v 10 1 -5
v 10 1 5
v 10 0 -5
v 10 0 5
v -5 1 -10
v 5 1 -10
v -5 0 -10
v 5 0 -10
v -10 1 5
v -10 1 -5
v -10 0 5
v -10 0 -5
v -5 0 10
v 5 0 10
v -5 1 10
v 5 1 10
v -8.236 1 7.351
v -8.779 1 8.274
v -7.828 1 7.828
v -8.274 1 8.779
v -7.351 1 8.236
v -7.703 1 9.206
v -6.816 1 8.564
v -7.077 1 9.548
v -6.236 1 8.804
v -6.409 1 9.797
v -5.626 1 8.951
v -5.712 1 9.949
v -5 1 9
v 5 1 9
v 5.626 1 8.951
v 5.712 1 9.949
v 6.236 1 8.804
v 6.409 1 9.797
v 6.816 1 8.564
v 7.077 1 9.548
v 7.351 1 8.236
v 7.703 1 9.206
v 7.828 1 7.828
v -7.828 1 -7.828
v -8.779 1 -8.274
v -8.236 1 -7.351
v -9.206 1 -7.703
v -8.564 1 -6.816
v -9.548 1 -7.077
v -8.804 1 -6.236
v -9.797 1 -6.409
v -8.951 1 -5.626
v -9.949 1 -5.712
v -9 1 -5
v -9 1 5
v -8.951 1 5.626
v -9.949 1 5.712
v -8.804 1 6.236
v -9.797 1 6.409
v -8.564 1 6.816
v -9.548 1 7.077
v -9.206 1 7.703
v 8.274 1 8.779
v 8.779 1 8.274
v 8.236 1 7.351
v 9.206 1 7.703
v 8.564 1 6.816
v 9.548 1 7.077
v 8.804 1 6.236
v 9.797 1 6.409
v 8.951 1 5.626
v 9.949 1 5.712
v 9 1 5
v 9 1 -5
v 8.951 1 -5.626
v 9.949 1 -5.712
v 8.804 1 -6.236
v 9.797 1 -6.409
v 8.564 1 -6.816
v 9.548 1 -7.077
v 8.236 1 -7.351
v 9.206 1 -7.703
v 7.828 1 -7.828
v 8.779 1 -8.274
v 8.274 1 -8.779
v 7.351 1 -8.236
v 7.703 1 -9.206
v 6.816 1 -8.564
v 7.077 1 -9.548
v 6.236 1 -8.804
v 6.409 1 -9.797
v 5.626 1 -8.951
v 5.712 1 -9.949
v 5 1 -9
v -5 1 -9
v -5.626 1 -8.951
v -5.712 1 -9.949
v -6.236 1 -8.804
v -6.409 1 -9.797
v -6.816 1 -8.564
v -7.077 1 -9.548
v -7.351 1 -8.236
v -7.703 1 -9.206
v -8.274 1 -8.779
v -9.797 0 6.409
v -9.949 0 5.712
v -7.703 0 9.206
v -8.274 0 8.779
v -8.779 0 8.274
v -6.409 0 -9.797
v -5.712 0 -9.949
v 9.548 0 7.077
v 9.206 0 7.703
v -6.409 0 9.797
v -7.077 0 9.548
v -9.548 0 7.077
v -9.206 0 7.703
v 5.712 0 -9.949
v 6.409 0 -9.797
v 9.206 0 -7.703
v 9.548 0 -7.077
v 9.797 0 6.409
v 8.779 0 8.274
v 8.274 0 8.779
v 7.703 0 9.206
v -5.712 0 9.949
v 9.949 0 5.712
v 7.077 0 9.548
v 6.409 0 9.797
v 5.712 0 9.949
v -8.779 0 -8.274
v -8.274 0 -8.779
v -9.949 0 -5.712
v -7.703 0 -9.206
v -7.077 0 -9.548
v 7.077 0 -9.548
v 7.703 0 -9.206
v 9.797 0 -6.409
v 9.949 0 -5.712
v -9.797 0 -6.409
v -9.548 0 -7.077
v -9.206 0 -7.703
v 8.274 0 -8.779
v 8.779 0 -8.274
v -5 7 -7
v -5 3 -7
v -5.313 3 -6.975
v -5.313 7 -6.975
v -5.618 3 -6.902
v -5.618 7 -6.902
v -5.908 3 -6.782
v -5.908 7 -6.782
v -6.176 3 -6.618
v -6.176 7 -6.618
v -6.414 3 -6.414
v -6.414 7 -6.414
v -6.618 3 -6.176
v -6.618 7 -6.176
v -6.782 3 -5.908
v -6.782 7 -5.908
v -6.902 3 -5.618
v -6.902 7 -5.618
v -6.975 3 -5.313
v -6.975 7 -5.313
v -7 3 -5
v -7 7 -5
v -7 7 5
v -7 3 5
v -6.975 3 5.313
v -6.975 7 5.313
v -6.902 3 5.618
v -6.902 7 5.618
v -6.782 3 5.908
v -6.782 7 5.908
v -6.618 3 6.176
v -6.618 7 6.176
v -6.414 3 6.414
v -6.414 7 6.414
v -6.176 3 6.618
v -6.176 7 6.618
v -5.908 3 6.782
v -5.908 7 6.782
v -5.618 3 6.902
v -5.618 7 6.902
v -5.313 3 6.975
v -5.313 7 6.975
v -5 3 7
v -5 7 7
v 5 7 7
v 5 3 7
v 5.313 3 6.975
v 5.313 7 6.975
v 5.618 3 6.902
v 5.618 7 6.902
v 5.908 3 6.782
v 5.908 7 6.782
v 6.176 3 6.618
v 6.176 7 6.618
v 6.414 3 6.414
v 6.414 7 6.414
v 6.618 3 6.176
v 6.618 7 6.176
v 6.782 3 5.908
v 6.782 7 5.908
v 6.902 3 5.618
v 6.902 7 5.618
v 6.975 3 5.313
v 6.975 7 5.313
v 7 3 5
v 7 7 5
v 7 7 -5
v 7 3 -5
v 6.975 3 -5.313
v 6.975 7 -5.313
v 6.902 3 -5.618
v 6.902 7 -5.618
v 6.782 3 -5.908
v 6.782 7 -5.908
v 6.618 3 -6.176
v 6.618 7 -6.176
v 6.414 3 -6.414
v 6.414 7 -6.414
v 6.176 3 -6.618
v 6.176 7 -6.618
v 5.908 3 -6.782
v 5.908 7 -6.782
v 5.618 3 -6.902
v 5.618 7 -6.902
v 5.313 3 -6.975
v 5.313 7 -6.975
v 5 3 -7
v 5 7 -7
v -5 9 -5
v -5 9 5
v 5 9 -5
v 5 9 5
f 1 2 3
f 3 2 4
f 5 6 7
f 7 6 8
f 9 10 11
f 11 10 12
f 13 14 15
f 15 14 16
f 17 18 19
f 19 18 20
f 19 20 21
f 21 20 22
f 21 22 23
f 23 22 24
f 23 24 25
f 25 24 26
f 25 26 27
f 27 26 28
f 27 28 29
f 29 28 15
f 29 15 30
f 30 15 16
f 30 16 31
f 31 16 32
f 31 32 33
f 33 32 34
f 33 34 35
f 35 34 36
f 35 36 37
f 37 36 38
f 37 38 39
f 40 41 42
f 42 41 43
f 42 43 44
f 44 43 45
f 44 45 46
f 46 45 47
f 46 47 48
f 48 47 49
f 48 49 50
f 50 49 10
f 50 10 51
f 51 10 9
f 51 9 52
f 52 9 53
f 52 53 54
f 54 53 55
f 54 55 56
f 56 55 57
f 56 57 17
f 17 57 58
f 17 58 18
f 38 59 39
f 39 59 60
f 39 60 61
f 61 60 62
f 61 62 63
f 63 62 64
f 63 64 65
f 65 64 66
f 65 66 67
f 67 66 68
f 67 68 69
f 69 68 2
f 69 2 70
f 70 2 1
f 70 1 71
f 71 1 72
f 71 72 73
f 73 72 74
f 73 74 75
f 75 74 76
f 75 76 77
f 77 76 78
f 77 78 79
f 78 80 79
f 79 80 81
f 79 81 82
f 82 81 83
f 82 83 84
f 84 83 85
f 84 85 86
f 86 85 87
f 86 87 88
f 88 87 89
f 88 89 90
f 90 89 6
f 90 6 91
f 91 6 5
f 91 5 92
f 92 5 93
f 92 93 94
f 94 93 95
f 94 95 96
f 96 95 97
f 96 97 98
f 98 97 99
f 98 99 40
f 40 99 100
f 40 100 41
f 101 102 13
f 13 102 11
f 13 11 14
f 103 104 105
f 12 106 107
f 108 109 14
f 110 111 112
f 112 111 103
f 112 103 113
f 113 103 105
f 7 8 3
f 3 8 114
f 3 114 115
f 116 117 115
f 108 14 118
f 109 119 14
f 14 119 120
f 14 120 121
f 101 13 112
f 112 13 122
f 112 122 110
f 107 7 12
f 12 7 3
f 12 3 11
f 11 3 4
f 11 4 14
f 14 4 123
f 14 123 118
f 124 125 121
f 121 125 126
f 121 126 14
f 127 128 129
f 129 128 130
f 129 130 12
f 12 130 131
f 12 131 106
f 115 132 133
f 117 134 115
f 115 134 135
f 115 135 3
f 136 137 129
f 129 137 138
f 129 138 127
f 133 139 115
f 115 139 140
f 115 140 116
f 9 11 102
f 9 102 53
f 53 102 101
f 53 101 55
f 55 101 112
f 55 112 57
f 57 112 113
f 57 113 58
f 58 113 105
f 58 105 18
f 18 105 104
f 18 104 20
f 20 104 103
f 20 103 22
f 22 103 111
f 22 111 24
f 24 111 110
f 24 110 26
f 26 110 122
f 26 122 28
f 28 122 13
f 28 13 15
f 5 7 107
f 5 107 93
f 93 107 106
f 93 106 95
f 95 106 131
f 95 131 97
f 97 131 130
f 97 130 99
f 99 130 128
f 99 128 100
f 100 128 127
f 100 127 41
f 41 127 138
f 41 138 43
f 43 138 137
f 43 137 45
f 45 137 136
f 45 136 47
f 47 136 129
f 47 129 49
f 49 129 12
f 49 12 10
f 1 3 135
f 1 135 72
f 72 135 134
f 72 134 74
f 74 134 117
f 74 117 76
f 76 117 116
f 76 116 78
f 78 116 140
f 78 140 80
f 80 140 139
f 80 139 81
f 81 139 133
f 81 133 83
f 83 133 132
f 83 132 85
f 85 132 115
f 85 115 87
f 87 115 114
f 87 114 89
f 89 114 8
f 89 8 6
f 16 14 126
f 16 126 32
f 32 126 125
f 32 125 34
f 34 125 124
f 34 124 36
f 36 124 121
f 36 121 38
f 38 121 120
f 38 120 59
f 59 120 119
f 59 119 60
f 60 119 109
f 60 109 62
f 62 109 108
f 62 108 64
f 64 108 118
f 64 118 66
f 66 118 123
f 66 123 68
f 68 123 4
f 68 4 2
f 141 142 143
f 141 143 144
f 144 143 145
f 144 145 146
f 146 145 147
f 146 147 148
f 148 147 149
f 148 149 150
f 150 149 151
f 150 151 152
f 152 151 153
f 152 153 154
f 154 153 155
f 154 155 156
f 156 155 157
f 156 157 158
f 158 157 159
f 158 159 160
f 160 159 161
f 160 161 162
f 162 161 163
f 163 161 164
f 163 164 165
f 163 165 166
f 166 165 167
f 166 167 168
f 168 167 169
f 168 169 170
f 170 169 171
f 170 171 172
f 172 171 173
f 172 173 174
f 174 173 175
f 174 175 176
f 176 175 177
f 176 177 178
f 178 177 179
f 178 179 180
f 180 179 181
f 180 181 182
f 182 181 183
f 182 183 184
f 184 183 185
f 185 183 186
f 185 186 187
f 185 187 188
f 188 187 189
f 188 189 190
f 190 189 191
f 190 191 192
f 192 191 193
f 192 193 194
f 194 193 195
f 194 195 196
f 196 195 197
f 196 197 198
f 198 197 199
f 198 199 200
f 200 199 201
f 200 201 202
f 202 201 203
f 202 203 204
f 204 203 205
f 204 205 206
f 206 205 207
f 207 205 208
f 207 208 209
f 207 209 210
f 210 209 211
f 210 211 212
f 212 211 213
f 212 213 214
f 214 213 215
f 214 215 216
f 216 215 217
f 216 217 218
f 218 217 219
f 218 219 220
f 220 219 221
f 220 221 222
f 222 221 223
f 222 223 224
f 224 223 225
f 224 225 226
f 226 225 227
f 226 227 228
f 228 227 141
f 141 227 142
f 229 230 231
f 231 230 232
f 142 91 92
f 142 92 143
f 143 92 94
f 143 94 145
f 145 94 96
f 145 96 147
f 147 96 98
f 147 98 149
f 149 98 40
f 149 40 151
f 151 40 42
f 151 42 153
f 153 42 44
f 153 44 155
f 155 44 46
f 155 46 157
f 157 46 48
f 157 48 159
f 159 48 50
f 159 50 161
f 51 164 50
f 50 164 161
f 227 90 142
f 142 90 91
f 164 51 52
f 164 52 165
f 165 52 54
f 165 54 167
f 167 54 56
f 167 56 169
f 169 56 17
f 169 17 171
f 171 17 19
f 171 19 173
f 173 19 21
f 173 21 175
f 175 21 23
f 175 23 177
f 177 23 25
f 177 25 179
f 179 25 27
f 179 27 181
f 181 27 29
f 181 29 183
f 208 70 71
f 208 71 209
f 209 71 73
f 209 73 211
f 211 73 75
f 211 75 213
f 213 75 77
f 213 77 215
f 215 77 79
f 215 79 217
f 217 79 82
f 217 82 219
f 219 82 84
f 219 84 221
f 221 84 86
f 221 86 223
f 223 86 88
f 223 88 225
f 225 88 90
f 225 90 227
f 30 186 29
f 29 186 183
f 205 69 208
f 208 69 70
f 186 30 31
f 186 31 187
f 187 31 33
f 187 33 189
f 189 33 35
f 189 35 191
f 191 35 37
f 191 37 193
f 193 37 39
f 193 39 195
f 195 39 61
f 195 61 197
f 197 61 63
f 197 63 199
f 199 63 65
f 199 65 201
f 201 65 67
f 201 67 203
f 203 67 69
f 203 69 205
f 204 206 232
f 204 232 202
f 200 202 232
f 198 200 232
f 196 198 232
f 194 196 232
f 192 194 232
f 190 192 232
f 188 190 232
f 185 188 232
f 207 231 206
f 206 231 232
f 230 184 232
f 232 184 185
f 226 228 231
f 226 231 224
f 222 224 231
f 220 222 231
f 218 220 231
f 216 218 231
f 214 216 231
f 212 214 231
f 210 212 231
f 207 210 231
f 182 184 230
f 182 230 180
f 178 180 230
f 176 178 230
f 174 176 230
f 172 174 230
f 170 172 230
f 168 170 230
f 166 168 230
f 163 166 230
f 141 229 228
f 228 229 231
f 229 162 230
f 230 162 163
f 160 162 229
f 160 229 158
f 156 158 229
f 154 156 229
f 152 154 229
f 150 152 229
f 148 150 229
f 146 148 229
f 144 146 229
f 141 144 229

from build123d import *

# Parameters (mm, degrees)
SKETCH1_W           = 20
SKETCH1_H           = 20
BOSS_EXTRUDE1_DEPTH = 1
FILLET2_R           = 5
BOSS_EXTRUDE3_DEPTH = 8
CHAMFER1_SIZE       = 2
CHAMFER3_SIZE       = 2


with BuildPart() as part:
    # Sketch1 → Boss-Extrude1 (new body)
    with BuildSketch(Plane(origin=(0, 0, 0), x_dir=(1, 0, 0), z_dir=(0, 1, 0))):
        Rectangle(SKETCH1_W, SKETCH1_H)
    extrude(amount=BOSS_EXTRUDE1_DEPTH)

    # Fillet2
    fillet2_edges = [part.edges().sort_by_distance(p)[0] for p in [
        (10, 0.5, 10),
        (-10, 0.5, 10),
        (-10, 0.5, -10),
        (10, 0.5, -10),
    ]]
    fillet(fillet2_edges, radius=FILLET2_R)

    # Sketch3 → Boss-Extrude3 (add)
    with BuildSketch(Plane(origin=(0, 1, 0), x_dir=(1, 0, 0), z_dir=(0, 1, 0))):
        with BuildLine():
            Line((-7, 5), (-7, -5))
            ThreePointArc((-7, -5), (-6.414213562, -6.414213562), (-5, -7))
            Line((-5, -7), (5, -7))
            ThreePointArc((5, -7), (6.414213562, -6.414213562), (7, -5))
            Line((7, -5), (7, 5))
            ThreePointArc((7, 5), (6.414213562, 6.414213562), (5, 7))
            Line((5, 7), (-5, 7))
            ThreePointArc((-5, 7), (-6.414213562, 6.414213562), (-7, 5))
        make_face()
    extrude(amount=BOSS_EXTRUDE3_DEPTH)

    # Chamfer1
    chamfer1_edges = [part.edges().sort_by_distance(p)[0] for p in [
        (-6.414213562, 1, -6.414213562),
        (-7, 1, 0),
        (-6.414213562, 1, 6.414213562),
        (0, 1, 7),
        (6.414213562, 1, 6.414213562),
        (7, 1, 0),
        (6.414213562, 1, -6.414213562),
        (0, 1, -7),
    ]]
    chamfer(chamfer1_edges, length=CHAMFER1_SIZE)

    # Chamfer3
    chamfer3_edges = [part.edges().sort_by_distance(p)[0] for p in [
        (-6.414213562, 9, -6.414213562),
        (-7, 9, 0),
        (-6.414213562, 9, 6.414213562),
        (0, 9, 7),
        (6.414213562, 9, 6.414213562),
        (7, 9, 0),
        (6.414213562, 9, -6.414213562),
        (0, 9, -7),
    ]]
    chamfer(chamfer3_edges, length=CHAMFER3_SIZE - 0.0001)  # a hair under: the kernel refuses the full size


solid = part.part
